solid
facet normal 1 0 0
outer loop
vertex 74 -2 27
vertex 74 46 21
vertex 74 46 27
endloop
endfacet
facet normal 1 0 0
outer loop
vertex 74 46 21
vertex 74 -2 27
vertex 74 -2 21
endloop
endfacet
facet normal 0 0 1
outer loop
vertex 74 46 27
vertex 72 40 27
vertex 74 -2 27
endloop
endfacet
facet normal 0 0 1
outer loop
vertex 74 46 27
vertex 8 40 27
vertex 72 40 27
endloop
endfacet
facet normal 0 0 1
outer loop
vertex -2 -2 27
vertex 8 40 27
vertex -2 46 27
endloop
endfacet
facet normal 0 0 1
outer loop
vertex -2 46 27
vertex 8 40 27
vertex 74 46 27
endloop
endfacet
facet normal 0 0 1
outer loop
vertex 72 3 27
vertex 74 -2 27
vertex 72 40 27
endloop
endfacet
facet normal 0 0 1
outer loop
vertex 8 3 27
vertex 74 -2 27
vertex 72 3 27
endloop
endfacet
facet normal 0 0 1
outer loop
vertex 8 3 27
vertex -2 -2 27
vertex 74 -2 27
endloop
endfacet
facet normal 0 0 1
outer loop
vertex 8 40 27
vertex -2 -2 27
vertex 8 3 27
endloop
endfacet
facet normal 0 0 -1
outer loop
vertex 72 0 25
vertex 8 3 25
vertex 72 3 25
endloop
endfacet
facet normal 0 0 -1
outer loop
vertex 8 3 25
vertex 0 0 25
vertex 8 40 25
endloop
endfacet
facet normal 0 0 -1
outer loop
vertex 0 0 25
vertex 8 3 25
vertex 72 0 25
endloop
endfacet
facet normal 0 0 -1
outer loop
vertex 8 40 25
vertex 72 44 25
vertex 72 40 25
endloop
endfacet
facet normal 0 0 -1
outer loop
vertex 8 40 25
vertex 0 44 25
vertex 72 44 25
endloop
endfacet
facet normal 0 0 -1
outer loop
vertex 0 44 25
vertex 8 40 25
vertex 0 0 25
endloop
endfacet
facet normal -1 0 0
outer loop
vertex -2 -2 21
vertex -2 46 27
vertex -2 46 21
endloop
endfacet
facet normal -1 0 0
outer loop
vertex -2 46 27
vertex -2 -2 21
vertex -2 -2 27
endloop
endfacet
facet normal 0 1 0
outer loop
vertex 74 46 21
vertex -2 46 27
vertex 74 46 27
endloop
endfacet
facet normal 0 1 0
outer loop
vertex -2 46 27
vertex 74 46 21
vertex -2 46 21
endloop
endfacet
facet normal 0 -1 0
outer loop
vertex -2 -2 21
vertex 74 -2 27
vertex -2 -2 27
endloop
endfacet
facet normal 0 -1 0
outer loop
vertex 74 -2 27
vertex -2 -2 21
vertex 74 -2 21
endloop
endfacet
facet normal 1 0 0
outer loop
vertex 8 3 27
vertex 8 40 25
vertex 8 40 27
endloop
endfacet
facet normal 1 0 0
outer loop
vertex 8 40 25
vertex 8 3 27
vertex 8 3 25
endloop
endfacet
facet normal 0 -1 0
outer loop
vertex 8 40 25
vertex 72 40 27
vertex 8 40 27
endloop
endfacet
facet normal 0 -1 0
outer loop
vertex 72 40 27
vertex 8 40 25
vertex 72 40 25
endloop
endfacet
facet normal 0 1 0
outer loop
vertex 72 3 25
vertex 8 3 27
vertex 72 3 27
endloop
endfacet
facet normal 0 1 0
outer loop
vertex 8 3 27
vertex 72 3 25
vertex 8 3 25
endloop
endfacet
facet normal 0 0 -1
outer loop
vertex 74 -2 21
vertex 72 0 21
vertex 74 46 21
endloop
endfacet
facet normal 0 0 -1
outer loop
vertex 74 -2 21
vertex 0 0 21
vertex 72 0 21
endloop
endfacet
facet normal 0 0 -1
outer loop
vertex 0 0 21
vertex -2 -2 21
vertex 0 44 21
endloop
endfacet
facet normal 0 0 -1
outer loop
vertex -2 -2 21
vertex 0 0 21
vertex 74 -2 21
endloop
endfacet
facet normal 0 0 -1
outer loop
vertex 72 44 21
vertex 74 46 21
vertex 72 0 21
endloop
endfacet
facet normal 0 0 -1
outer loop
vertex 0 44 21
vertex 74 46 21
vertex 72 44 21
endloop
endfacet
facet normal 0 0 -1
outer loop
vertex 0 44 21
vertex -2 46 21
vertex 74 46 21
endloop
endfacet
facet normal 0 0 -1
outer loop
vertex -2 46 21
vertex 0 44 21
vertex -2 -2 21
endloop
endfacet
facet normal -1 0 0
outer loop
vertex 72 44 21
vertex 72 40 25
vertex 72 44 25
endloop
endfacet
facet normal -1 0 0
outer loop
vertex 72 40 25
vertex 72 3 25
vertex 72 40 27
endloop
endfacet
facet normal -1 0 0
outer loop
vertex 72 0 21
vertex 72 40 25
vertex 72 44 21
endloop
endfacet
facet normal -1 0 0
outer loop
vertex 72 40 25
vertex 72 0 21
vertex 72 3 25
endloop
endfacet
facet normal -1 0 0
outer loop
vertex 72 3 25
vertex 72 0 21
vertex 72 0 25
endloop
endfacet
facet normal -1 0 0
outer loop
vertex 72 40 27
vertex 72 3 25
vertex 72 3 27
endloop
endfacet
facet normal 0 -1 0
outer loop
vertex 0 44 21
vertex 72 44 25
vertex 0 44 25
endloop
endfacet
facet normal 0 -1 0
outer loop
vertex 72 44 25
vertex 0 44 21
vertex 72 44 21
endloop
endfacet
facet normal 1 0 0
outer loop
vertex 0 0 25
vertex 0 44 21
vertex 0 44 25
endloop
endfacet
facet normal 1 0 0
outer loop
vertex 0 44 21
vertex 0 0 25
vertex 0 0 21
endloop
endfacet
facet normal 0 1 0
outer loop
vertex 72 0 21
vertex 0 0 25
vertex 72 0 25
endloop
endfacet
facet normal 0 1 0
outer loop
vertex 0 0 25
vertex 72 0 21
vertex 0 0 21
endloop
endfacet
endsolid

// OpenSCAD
width = 70;
depth = 42;
height = 18;
caseheight = 4;

pw = 2;

$fn=100;

module Case() {
    cube([width, depth, pw]);
    cube([pw, depth, height]);
    translate([width, 0, 0]) {
        cube([pw, depth, height]);
    }
    cube([width, pw, height]);
    translate([0, depth, 0]) {
        cube([width + pw, pw, height]);
    }
}

module Lid() {
    difference() {
        cube([width + 3*pw, depth + 3*pw, pw]);
        translate([10, 5, -pw]) {
            cube([width - 3, depth - 5, pw*3]);
        }
    }
    translate([0, 0, -caseheight]) {
        translate([width + 2*pw, 0, 0]) {
            cube([pw, depth + 2*pw, caseheight + pw]);
        }
        cube([pw, depth + 2*pw, caseheight + pw]);
        cube([width+2*pw, pw, caseheight]);
        translate([0, depth + 2*pw, 0]) {
            cube([width+3*pw, pw, caseheight]);
        }
    }
}

/* Case(); */
translate([-pw, -pw, 25]) {
    Lid();
};
